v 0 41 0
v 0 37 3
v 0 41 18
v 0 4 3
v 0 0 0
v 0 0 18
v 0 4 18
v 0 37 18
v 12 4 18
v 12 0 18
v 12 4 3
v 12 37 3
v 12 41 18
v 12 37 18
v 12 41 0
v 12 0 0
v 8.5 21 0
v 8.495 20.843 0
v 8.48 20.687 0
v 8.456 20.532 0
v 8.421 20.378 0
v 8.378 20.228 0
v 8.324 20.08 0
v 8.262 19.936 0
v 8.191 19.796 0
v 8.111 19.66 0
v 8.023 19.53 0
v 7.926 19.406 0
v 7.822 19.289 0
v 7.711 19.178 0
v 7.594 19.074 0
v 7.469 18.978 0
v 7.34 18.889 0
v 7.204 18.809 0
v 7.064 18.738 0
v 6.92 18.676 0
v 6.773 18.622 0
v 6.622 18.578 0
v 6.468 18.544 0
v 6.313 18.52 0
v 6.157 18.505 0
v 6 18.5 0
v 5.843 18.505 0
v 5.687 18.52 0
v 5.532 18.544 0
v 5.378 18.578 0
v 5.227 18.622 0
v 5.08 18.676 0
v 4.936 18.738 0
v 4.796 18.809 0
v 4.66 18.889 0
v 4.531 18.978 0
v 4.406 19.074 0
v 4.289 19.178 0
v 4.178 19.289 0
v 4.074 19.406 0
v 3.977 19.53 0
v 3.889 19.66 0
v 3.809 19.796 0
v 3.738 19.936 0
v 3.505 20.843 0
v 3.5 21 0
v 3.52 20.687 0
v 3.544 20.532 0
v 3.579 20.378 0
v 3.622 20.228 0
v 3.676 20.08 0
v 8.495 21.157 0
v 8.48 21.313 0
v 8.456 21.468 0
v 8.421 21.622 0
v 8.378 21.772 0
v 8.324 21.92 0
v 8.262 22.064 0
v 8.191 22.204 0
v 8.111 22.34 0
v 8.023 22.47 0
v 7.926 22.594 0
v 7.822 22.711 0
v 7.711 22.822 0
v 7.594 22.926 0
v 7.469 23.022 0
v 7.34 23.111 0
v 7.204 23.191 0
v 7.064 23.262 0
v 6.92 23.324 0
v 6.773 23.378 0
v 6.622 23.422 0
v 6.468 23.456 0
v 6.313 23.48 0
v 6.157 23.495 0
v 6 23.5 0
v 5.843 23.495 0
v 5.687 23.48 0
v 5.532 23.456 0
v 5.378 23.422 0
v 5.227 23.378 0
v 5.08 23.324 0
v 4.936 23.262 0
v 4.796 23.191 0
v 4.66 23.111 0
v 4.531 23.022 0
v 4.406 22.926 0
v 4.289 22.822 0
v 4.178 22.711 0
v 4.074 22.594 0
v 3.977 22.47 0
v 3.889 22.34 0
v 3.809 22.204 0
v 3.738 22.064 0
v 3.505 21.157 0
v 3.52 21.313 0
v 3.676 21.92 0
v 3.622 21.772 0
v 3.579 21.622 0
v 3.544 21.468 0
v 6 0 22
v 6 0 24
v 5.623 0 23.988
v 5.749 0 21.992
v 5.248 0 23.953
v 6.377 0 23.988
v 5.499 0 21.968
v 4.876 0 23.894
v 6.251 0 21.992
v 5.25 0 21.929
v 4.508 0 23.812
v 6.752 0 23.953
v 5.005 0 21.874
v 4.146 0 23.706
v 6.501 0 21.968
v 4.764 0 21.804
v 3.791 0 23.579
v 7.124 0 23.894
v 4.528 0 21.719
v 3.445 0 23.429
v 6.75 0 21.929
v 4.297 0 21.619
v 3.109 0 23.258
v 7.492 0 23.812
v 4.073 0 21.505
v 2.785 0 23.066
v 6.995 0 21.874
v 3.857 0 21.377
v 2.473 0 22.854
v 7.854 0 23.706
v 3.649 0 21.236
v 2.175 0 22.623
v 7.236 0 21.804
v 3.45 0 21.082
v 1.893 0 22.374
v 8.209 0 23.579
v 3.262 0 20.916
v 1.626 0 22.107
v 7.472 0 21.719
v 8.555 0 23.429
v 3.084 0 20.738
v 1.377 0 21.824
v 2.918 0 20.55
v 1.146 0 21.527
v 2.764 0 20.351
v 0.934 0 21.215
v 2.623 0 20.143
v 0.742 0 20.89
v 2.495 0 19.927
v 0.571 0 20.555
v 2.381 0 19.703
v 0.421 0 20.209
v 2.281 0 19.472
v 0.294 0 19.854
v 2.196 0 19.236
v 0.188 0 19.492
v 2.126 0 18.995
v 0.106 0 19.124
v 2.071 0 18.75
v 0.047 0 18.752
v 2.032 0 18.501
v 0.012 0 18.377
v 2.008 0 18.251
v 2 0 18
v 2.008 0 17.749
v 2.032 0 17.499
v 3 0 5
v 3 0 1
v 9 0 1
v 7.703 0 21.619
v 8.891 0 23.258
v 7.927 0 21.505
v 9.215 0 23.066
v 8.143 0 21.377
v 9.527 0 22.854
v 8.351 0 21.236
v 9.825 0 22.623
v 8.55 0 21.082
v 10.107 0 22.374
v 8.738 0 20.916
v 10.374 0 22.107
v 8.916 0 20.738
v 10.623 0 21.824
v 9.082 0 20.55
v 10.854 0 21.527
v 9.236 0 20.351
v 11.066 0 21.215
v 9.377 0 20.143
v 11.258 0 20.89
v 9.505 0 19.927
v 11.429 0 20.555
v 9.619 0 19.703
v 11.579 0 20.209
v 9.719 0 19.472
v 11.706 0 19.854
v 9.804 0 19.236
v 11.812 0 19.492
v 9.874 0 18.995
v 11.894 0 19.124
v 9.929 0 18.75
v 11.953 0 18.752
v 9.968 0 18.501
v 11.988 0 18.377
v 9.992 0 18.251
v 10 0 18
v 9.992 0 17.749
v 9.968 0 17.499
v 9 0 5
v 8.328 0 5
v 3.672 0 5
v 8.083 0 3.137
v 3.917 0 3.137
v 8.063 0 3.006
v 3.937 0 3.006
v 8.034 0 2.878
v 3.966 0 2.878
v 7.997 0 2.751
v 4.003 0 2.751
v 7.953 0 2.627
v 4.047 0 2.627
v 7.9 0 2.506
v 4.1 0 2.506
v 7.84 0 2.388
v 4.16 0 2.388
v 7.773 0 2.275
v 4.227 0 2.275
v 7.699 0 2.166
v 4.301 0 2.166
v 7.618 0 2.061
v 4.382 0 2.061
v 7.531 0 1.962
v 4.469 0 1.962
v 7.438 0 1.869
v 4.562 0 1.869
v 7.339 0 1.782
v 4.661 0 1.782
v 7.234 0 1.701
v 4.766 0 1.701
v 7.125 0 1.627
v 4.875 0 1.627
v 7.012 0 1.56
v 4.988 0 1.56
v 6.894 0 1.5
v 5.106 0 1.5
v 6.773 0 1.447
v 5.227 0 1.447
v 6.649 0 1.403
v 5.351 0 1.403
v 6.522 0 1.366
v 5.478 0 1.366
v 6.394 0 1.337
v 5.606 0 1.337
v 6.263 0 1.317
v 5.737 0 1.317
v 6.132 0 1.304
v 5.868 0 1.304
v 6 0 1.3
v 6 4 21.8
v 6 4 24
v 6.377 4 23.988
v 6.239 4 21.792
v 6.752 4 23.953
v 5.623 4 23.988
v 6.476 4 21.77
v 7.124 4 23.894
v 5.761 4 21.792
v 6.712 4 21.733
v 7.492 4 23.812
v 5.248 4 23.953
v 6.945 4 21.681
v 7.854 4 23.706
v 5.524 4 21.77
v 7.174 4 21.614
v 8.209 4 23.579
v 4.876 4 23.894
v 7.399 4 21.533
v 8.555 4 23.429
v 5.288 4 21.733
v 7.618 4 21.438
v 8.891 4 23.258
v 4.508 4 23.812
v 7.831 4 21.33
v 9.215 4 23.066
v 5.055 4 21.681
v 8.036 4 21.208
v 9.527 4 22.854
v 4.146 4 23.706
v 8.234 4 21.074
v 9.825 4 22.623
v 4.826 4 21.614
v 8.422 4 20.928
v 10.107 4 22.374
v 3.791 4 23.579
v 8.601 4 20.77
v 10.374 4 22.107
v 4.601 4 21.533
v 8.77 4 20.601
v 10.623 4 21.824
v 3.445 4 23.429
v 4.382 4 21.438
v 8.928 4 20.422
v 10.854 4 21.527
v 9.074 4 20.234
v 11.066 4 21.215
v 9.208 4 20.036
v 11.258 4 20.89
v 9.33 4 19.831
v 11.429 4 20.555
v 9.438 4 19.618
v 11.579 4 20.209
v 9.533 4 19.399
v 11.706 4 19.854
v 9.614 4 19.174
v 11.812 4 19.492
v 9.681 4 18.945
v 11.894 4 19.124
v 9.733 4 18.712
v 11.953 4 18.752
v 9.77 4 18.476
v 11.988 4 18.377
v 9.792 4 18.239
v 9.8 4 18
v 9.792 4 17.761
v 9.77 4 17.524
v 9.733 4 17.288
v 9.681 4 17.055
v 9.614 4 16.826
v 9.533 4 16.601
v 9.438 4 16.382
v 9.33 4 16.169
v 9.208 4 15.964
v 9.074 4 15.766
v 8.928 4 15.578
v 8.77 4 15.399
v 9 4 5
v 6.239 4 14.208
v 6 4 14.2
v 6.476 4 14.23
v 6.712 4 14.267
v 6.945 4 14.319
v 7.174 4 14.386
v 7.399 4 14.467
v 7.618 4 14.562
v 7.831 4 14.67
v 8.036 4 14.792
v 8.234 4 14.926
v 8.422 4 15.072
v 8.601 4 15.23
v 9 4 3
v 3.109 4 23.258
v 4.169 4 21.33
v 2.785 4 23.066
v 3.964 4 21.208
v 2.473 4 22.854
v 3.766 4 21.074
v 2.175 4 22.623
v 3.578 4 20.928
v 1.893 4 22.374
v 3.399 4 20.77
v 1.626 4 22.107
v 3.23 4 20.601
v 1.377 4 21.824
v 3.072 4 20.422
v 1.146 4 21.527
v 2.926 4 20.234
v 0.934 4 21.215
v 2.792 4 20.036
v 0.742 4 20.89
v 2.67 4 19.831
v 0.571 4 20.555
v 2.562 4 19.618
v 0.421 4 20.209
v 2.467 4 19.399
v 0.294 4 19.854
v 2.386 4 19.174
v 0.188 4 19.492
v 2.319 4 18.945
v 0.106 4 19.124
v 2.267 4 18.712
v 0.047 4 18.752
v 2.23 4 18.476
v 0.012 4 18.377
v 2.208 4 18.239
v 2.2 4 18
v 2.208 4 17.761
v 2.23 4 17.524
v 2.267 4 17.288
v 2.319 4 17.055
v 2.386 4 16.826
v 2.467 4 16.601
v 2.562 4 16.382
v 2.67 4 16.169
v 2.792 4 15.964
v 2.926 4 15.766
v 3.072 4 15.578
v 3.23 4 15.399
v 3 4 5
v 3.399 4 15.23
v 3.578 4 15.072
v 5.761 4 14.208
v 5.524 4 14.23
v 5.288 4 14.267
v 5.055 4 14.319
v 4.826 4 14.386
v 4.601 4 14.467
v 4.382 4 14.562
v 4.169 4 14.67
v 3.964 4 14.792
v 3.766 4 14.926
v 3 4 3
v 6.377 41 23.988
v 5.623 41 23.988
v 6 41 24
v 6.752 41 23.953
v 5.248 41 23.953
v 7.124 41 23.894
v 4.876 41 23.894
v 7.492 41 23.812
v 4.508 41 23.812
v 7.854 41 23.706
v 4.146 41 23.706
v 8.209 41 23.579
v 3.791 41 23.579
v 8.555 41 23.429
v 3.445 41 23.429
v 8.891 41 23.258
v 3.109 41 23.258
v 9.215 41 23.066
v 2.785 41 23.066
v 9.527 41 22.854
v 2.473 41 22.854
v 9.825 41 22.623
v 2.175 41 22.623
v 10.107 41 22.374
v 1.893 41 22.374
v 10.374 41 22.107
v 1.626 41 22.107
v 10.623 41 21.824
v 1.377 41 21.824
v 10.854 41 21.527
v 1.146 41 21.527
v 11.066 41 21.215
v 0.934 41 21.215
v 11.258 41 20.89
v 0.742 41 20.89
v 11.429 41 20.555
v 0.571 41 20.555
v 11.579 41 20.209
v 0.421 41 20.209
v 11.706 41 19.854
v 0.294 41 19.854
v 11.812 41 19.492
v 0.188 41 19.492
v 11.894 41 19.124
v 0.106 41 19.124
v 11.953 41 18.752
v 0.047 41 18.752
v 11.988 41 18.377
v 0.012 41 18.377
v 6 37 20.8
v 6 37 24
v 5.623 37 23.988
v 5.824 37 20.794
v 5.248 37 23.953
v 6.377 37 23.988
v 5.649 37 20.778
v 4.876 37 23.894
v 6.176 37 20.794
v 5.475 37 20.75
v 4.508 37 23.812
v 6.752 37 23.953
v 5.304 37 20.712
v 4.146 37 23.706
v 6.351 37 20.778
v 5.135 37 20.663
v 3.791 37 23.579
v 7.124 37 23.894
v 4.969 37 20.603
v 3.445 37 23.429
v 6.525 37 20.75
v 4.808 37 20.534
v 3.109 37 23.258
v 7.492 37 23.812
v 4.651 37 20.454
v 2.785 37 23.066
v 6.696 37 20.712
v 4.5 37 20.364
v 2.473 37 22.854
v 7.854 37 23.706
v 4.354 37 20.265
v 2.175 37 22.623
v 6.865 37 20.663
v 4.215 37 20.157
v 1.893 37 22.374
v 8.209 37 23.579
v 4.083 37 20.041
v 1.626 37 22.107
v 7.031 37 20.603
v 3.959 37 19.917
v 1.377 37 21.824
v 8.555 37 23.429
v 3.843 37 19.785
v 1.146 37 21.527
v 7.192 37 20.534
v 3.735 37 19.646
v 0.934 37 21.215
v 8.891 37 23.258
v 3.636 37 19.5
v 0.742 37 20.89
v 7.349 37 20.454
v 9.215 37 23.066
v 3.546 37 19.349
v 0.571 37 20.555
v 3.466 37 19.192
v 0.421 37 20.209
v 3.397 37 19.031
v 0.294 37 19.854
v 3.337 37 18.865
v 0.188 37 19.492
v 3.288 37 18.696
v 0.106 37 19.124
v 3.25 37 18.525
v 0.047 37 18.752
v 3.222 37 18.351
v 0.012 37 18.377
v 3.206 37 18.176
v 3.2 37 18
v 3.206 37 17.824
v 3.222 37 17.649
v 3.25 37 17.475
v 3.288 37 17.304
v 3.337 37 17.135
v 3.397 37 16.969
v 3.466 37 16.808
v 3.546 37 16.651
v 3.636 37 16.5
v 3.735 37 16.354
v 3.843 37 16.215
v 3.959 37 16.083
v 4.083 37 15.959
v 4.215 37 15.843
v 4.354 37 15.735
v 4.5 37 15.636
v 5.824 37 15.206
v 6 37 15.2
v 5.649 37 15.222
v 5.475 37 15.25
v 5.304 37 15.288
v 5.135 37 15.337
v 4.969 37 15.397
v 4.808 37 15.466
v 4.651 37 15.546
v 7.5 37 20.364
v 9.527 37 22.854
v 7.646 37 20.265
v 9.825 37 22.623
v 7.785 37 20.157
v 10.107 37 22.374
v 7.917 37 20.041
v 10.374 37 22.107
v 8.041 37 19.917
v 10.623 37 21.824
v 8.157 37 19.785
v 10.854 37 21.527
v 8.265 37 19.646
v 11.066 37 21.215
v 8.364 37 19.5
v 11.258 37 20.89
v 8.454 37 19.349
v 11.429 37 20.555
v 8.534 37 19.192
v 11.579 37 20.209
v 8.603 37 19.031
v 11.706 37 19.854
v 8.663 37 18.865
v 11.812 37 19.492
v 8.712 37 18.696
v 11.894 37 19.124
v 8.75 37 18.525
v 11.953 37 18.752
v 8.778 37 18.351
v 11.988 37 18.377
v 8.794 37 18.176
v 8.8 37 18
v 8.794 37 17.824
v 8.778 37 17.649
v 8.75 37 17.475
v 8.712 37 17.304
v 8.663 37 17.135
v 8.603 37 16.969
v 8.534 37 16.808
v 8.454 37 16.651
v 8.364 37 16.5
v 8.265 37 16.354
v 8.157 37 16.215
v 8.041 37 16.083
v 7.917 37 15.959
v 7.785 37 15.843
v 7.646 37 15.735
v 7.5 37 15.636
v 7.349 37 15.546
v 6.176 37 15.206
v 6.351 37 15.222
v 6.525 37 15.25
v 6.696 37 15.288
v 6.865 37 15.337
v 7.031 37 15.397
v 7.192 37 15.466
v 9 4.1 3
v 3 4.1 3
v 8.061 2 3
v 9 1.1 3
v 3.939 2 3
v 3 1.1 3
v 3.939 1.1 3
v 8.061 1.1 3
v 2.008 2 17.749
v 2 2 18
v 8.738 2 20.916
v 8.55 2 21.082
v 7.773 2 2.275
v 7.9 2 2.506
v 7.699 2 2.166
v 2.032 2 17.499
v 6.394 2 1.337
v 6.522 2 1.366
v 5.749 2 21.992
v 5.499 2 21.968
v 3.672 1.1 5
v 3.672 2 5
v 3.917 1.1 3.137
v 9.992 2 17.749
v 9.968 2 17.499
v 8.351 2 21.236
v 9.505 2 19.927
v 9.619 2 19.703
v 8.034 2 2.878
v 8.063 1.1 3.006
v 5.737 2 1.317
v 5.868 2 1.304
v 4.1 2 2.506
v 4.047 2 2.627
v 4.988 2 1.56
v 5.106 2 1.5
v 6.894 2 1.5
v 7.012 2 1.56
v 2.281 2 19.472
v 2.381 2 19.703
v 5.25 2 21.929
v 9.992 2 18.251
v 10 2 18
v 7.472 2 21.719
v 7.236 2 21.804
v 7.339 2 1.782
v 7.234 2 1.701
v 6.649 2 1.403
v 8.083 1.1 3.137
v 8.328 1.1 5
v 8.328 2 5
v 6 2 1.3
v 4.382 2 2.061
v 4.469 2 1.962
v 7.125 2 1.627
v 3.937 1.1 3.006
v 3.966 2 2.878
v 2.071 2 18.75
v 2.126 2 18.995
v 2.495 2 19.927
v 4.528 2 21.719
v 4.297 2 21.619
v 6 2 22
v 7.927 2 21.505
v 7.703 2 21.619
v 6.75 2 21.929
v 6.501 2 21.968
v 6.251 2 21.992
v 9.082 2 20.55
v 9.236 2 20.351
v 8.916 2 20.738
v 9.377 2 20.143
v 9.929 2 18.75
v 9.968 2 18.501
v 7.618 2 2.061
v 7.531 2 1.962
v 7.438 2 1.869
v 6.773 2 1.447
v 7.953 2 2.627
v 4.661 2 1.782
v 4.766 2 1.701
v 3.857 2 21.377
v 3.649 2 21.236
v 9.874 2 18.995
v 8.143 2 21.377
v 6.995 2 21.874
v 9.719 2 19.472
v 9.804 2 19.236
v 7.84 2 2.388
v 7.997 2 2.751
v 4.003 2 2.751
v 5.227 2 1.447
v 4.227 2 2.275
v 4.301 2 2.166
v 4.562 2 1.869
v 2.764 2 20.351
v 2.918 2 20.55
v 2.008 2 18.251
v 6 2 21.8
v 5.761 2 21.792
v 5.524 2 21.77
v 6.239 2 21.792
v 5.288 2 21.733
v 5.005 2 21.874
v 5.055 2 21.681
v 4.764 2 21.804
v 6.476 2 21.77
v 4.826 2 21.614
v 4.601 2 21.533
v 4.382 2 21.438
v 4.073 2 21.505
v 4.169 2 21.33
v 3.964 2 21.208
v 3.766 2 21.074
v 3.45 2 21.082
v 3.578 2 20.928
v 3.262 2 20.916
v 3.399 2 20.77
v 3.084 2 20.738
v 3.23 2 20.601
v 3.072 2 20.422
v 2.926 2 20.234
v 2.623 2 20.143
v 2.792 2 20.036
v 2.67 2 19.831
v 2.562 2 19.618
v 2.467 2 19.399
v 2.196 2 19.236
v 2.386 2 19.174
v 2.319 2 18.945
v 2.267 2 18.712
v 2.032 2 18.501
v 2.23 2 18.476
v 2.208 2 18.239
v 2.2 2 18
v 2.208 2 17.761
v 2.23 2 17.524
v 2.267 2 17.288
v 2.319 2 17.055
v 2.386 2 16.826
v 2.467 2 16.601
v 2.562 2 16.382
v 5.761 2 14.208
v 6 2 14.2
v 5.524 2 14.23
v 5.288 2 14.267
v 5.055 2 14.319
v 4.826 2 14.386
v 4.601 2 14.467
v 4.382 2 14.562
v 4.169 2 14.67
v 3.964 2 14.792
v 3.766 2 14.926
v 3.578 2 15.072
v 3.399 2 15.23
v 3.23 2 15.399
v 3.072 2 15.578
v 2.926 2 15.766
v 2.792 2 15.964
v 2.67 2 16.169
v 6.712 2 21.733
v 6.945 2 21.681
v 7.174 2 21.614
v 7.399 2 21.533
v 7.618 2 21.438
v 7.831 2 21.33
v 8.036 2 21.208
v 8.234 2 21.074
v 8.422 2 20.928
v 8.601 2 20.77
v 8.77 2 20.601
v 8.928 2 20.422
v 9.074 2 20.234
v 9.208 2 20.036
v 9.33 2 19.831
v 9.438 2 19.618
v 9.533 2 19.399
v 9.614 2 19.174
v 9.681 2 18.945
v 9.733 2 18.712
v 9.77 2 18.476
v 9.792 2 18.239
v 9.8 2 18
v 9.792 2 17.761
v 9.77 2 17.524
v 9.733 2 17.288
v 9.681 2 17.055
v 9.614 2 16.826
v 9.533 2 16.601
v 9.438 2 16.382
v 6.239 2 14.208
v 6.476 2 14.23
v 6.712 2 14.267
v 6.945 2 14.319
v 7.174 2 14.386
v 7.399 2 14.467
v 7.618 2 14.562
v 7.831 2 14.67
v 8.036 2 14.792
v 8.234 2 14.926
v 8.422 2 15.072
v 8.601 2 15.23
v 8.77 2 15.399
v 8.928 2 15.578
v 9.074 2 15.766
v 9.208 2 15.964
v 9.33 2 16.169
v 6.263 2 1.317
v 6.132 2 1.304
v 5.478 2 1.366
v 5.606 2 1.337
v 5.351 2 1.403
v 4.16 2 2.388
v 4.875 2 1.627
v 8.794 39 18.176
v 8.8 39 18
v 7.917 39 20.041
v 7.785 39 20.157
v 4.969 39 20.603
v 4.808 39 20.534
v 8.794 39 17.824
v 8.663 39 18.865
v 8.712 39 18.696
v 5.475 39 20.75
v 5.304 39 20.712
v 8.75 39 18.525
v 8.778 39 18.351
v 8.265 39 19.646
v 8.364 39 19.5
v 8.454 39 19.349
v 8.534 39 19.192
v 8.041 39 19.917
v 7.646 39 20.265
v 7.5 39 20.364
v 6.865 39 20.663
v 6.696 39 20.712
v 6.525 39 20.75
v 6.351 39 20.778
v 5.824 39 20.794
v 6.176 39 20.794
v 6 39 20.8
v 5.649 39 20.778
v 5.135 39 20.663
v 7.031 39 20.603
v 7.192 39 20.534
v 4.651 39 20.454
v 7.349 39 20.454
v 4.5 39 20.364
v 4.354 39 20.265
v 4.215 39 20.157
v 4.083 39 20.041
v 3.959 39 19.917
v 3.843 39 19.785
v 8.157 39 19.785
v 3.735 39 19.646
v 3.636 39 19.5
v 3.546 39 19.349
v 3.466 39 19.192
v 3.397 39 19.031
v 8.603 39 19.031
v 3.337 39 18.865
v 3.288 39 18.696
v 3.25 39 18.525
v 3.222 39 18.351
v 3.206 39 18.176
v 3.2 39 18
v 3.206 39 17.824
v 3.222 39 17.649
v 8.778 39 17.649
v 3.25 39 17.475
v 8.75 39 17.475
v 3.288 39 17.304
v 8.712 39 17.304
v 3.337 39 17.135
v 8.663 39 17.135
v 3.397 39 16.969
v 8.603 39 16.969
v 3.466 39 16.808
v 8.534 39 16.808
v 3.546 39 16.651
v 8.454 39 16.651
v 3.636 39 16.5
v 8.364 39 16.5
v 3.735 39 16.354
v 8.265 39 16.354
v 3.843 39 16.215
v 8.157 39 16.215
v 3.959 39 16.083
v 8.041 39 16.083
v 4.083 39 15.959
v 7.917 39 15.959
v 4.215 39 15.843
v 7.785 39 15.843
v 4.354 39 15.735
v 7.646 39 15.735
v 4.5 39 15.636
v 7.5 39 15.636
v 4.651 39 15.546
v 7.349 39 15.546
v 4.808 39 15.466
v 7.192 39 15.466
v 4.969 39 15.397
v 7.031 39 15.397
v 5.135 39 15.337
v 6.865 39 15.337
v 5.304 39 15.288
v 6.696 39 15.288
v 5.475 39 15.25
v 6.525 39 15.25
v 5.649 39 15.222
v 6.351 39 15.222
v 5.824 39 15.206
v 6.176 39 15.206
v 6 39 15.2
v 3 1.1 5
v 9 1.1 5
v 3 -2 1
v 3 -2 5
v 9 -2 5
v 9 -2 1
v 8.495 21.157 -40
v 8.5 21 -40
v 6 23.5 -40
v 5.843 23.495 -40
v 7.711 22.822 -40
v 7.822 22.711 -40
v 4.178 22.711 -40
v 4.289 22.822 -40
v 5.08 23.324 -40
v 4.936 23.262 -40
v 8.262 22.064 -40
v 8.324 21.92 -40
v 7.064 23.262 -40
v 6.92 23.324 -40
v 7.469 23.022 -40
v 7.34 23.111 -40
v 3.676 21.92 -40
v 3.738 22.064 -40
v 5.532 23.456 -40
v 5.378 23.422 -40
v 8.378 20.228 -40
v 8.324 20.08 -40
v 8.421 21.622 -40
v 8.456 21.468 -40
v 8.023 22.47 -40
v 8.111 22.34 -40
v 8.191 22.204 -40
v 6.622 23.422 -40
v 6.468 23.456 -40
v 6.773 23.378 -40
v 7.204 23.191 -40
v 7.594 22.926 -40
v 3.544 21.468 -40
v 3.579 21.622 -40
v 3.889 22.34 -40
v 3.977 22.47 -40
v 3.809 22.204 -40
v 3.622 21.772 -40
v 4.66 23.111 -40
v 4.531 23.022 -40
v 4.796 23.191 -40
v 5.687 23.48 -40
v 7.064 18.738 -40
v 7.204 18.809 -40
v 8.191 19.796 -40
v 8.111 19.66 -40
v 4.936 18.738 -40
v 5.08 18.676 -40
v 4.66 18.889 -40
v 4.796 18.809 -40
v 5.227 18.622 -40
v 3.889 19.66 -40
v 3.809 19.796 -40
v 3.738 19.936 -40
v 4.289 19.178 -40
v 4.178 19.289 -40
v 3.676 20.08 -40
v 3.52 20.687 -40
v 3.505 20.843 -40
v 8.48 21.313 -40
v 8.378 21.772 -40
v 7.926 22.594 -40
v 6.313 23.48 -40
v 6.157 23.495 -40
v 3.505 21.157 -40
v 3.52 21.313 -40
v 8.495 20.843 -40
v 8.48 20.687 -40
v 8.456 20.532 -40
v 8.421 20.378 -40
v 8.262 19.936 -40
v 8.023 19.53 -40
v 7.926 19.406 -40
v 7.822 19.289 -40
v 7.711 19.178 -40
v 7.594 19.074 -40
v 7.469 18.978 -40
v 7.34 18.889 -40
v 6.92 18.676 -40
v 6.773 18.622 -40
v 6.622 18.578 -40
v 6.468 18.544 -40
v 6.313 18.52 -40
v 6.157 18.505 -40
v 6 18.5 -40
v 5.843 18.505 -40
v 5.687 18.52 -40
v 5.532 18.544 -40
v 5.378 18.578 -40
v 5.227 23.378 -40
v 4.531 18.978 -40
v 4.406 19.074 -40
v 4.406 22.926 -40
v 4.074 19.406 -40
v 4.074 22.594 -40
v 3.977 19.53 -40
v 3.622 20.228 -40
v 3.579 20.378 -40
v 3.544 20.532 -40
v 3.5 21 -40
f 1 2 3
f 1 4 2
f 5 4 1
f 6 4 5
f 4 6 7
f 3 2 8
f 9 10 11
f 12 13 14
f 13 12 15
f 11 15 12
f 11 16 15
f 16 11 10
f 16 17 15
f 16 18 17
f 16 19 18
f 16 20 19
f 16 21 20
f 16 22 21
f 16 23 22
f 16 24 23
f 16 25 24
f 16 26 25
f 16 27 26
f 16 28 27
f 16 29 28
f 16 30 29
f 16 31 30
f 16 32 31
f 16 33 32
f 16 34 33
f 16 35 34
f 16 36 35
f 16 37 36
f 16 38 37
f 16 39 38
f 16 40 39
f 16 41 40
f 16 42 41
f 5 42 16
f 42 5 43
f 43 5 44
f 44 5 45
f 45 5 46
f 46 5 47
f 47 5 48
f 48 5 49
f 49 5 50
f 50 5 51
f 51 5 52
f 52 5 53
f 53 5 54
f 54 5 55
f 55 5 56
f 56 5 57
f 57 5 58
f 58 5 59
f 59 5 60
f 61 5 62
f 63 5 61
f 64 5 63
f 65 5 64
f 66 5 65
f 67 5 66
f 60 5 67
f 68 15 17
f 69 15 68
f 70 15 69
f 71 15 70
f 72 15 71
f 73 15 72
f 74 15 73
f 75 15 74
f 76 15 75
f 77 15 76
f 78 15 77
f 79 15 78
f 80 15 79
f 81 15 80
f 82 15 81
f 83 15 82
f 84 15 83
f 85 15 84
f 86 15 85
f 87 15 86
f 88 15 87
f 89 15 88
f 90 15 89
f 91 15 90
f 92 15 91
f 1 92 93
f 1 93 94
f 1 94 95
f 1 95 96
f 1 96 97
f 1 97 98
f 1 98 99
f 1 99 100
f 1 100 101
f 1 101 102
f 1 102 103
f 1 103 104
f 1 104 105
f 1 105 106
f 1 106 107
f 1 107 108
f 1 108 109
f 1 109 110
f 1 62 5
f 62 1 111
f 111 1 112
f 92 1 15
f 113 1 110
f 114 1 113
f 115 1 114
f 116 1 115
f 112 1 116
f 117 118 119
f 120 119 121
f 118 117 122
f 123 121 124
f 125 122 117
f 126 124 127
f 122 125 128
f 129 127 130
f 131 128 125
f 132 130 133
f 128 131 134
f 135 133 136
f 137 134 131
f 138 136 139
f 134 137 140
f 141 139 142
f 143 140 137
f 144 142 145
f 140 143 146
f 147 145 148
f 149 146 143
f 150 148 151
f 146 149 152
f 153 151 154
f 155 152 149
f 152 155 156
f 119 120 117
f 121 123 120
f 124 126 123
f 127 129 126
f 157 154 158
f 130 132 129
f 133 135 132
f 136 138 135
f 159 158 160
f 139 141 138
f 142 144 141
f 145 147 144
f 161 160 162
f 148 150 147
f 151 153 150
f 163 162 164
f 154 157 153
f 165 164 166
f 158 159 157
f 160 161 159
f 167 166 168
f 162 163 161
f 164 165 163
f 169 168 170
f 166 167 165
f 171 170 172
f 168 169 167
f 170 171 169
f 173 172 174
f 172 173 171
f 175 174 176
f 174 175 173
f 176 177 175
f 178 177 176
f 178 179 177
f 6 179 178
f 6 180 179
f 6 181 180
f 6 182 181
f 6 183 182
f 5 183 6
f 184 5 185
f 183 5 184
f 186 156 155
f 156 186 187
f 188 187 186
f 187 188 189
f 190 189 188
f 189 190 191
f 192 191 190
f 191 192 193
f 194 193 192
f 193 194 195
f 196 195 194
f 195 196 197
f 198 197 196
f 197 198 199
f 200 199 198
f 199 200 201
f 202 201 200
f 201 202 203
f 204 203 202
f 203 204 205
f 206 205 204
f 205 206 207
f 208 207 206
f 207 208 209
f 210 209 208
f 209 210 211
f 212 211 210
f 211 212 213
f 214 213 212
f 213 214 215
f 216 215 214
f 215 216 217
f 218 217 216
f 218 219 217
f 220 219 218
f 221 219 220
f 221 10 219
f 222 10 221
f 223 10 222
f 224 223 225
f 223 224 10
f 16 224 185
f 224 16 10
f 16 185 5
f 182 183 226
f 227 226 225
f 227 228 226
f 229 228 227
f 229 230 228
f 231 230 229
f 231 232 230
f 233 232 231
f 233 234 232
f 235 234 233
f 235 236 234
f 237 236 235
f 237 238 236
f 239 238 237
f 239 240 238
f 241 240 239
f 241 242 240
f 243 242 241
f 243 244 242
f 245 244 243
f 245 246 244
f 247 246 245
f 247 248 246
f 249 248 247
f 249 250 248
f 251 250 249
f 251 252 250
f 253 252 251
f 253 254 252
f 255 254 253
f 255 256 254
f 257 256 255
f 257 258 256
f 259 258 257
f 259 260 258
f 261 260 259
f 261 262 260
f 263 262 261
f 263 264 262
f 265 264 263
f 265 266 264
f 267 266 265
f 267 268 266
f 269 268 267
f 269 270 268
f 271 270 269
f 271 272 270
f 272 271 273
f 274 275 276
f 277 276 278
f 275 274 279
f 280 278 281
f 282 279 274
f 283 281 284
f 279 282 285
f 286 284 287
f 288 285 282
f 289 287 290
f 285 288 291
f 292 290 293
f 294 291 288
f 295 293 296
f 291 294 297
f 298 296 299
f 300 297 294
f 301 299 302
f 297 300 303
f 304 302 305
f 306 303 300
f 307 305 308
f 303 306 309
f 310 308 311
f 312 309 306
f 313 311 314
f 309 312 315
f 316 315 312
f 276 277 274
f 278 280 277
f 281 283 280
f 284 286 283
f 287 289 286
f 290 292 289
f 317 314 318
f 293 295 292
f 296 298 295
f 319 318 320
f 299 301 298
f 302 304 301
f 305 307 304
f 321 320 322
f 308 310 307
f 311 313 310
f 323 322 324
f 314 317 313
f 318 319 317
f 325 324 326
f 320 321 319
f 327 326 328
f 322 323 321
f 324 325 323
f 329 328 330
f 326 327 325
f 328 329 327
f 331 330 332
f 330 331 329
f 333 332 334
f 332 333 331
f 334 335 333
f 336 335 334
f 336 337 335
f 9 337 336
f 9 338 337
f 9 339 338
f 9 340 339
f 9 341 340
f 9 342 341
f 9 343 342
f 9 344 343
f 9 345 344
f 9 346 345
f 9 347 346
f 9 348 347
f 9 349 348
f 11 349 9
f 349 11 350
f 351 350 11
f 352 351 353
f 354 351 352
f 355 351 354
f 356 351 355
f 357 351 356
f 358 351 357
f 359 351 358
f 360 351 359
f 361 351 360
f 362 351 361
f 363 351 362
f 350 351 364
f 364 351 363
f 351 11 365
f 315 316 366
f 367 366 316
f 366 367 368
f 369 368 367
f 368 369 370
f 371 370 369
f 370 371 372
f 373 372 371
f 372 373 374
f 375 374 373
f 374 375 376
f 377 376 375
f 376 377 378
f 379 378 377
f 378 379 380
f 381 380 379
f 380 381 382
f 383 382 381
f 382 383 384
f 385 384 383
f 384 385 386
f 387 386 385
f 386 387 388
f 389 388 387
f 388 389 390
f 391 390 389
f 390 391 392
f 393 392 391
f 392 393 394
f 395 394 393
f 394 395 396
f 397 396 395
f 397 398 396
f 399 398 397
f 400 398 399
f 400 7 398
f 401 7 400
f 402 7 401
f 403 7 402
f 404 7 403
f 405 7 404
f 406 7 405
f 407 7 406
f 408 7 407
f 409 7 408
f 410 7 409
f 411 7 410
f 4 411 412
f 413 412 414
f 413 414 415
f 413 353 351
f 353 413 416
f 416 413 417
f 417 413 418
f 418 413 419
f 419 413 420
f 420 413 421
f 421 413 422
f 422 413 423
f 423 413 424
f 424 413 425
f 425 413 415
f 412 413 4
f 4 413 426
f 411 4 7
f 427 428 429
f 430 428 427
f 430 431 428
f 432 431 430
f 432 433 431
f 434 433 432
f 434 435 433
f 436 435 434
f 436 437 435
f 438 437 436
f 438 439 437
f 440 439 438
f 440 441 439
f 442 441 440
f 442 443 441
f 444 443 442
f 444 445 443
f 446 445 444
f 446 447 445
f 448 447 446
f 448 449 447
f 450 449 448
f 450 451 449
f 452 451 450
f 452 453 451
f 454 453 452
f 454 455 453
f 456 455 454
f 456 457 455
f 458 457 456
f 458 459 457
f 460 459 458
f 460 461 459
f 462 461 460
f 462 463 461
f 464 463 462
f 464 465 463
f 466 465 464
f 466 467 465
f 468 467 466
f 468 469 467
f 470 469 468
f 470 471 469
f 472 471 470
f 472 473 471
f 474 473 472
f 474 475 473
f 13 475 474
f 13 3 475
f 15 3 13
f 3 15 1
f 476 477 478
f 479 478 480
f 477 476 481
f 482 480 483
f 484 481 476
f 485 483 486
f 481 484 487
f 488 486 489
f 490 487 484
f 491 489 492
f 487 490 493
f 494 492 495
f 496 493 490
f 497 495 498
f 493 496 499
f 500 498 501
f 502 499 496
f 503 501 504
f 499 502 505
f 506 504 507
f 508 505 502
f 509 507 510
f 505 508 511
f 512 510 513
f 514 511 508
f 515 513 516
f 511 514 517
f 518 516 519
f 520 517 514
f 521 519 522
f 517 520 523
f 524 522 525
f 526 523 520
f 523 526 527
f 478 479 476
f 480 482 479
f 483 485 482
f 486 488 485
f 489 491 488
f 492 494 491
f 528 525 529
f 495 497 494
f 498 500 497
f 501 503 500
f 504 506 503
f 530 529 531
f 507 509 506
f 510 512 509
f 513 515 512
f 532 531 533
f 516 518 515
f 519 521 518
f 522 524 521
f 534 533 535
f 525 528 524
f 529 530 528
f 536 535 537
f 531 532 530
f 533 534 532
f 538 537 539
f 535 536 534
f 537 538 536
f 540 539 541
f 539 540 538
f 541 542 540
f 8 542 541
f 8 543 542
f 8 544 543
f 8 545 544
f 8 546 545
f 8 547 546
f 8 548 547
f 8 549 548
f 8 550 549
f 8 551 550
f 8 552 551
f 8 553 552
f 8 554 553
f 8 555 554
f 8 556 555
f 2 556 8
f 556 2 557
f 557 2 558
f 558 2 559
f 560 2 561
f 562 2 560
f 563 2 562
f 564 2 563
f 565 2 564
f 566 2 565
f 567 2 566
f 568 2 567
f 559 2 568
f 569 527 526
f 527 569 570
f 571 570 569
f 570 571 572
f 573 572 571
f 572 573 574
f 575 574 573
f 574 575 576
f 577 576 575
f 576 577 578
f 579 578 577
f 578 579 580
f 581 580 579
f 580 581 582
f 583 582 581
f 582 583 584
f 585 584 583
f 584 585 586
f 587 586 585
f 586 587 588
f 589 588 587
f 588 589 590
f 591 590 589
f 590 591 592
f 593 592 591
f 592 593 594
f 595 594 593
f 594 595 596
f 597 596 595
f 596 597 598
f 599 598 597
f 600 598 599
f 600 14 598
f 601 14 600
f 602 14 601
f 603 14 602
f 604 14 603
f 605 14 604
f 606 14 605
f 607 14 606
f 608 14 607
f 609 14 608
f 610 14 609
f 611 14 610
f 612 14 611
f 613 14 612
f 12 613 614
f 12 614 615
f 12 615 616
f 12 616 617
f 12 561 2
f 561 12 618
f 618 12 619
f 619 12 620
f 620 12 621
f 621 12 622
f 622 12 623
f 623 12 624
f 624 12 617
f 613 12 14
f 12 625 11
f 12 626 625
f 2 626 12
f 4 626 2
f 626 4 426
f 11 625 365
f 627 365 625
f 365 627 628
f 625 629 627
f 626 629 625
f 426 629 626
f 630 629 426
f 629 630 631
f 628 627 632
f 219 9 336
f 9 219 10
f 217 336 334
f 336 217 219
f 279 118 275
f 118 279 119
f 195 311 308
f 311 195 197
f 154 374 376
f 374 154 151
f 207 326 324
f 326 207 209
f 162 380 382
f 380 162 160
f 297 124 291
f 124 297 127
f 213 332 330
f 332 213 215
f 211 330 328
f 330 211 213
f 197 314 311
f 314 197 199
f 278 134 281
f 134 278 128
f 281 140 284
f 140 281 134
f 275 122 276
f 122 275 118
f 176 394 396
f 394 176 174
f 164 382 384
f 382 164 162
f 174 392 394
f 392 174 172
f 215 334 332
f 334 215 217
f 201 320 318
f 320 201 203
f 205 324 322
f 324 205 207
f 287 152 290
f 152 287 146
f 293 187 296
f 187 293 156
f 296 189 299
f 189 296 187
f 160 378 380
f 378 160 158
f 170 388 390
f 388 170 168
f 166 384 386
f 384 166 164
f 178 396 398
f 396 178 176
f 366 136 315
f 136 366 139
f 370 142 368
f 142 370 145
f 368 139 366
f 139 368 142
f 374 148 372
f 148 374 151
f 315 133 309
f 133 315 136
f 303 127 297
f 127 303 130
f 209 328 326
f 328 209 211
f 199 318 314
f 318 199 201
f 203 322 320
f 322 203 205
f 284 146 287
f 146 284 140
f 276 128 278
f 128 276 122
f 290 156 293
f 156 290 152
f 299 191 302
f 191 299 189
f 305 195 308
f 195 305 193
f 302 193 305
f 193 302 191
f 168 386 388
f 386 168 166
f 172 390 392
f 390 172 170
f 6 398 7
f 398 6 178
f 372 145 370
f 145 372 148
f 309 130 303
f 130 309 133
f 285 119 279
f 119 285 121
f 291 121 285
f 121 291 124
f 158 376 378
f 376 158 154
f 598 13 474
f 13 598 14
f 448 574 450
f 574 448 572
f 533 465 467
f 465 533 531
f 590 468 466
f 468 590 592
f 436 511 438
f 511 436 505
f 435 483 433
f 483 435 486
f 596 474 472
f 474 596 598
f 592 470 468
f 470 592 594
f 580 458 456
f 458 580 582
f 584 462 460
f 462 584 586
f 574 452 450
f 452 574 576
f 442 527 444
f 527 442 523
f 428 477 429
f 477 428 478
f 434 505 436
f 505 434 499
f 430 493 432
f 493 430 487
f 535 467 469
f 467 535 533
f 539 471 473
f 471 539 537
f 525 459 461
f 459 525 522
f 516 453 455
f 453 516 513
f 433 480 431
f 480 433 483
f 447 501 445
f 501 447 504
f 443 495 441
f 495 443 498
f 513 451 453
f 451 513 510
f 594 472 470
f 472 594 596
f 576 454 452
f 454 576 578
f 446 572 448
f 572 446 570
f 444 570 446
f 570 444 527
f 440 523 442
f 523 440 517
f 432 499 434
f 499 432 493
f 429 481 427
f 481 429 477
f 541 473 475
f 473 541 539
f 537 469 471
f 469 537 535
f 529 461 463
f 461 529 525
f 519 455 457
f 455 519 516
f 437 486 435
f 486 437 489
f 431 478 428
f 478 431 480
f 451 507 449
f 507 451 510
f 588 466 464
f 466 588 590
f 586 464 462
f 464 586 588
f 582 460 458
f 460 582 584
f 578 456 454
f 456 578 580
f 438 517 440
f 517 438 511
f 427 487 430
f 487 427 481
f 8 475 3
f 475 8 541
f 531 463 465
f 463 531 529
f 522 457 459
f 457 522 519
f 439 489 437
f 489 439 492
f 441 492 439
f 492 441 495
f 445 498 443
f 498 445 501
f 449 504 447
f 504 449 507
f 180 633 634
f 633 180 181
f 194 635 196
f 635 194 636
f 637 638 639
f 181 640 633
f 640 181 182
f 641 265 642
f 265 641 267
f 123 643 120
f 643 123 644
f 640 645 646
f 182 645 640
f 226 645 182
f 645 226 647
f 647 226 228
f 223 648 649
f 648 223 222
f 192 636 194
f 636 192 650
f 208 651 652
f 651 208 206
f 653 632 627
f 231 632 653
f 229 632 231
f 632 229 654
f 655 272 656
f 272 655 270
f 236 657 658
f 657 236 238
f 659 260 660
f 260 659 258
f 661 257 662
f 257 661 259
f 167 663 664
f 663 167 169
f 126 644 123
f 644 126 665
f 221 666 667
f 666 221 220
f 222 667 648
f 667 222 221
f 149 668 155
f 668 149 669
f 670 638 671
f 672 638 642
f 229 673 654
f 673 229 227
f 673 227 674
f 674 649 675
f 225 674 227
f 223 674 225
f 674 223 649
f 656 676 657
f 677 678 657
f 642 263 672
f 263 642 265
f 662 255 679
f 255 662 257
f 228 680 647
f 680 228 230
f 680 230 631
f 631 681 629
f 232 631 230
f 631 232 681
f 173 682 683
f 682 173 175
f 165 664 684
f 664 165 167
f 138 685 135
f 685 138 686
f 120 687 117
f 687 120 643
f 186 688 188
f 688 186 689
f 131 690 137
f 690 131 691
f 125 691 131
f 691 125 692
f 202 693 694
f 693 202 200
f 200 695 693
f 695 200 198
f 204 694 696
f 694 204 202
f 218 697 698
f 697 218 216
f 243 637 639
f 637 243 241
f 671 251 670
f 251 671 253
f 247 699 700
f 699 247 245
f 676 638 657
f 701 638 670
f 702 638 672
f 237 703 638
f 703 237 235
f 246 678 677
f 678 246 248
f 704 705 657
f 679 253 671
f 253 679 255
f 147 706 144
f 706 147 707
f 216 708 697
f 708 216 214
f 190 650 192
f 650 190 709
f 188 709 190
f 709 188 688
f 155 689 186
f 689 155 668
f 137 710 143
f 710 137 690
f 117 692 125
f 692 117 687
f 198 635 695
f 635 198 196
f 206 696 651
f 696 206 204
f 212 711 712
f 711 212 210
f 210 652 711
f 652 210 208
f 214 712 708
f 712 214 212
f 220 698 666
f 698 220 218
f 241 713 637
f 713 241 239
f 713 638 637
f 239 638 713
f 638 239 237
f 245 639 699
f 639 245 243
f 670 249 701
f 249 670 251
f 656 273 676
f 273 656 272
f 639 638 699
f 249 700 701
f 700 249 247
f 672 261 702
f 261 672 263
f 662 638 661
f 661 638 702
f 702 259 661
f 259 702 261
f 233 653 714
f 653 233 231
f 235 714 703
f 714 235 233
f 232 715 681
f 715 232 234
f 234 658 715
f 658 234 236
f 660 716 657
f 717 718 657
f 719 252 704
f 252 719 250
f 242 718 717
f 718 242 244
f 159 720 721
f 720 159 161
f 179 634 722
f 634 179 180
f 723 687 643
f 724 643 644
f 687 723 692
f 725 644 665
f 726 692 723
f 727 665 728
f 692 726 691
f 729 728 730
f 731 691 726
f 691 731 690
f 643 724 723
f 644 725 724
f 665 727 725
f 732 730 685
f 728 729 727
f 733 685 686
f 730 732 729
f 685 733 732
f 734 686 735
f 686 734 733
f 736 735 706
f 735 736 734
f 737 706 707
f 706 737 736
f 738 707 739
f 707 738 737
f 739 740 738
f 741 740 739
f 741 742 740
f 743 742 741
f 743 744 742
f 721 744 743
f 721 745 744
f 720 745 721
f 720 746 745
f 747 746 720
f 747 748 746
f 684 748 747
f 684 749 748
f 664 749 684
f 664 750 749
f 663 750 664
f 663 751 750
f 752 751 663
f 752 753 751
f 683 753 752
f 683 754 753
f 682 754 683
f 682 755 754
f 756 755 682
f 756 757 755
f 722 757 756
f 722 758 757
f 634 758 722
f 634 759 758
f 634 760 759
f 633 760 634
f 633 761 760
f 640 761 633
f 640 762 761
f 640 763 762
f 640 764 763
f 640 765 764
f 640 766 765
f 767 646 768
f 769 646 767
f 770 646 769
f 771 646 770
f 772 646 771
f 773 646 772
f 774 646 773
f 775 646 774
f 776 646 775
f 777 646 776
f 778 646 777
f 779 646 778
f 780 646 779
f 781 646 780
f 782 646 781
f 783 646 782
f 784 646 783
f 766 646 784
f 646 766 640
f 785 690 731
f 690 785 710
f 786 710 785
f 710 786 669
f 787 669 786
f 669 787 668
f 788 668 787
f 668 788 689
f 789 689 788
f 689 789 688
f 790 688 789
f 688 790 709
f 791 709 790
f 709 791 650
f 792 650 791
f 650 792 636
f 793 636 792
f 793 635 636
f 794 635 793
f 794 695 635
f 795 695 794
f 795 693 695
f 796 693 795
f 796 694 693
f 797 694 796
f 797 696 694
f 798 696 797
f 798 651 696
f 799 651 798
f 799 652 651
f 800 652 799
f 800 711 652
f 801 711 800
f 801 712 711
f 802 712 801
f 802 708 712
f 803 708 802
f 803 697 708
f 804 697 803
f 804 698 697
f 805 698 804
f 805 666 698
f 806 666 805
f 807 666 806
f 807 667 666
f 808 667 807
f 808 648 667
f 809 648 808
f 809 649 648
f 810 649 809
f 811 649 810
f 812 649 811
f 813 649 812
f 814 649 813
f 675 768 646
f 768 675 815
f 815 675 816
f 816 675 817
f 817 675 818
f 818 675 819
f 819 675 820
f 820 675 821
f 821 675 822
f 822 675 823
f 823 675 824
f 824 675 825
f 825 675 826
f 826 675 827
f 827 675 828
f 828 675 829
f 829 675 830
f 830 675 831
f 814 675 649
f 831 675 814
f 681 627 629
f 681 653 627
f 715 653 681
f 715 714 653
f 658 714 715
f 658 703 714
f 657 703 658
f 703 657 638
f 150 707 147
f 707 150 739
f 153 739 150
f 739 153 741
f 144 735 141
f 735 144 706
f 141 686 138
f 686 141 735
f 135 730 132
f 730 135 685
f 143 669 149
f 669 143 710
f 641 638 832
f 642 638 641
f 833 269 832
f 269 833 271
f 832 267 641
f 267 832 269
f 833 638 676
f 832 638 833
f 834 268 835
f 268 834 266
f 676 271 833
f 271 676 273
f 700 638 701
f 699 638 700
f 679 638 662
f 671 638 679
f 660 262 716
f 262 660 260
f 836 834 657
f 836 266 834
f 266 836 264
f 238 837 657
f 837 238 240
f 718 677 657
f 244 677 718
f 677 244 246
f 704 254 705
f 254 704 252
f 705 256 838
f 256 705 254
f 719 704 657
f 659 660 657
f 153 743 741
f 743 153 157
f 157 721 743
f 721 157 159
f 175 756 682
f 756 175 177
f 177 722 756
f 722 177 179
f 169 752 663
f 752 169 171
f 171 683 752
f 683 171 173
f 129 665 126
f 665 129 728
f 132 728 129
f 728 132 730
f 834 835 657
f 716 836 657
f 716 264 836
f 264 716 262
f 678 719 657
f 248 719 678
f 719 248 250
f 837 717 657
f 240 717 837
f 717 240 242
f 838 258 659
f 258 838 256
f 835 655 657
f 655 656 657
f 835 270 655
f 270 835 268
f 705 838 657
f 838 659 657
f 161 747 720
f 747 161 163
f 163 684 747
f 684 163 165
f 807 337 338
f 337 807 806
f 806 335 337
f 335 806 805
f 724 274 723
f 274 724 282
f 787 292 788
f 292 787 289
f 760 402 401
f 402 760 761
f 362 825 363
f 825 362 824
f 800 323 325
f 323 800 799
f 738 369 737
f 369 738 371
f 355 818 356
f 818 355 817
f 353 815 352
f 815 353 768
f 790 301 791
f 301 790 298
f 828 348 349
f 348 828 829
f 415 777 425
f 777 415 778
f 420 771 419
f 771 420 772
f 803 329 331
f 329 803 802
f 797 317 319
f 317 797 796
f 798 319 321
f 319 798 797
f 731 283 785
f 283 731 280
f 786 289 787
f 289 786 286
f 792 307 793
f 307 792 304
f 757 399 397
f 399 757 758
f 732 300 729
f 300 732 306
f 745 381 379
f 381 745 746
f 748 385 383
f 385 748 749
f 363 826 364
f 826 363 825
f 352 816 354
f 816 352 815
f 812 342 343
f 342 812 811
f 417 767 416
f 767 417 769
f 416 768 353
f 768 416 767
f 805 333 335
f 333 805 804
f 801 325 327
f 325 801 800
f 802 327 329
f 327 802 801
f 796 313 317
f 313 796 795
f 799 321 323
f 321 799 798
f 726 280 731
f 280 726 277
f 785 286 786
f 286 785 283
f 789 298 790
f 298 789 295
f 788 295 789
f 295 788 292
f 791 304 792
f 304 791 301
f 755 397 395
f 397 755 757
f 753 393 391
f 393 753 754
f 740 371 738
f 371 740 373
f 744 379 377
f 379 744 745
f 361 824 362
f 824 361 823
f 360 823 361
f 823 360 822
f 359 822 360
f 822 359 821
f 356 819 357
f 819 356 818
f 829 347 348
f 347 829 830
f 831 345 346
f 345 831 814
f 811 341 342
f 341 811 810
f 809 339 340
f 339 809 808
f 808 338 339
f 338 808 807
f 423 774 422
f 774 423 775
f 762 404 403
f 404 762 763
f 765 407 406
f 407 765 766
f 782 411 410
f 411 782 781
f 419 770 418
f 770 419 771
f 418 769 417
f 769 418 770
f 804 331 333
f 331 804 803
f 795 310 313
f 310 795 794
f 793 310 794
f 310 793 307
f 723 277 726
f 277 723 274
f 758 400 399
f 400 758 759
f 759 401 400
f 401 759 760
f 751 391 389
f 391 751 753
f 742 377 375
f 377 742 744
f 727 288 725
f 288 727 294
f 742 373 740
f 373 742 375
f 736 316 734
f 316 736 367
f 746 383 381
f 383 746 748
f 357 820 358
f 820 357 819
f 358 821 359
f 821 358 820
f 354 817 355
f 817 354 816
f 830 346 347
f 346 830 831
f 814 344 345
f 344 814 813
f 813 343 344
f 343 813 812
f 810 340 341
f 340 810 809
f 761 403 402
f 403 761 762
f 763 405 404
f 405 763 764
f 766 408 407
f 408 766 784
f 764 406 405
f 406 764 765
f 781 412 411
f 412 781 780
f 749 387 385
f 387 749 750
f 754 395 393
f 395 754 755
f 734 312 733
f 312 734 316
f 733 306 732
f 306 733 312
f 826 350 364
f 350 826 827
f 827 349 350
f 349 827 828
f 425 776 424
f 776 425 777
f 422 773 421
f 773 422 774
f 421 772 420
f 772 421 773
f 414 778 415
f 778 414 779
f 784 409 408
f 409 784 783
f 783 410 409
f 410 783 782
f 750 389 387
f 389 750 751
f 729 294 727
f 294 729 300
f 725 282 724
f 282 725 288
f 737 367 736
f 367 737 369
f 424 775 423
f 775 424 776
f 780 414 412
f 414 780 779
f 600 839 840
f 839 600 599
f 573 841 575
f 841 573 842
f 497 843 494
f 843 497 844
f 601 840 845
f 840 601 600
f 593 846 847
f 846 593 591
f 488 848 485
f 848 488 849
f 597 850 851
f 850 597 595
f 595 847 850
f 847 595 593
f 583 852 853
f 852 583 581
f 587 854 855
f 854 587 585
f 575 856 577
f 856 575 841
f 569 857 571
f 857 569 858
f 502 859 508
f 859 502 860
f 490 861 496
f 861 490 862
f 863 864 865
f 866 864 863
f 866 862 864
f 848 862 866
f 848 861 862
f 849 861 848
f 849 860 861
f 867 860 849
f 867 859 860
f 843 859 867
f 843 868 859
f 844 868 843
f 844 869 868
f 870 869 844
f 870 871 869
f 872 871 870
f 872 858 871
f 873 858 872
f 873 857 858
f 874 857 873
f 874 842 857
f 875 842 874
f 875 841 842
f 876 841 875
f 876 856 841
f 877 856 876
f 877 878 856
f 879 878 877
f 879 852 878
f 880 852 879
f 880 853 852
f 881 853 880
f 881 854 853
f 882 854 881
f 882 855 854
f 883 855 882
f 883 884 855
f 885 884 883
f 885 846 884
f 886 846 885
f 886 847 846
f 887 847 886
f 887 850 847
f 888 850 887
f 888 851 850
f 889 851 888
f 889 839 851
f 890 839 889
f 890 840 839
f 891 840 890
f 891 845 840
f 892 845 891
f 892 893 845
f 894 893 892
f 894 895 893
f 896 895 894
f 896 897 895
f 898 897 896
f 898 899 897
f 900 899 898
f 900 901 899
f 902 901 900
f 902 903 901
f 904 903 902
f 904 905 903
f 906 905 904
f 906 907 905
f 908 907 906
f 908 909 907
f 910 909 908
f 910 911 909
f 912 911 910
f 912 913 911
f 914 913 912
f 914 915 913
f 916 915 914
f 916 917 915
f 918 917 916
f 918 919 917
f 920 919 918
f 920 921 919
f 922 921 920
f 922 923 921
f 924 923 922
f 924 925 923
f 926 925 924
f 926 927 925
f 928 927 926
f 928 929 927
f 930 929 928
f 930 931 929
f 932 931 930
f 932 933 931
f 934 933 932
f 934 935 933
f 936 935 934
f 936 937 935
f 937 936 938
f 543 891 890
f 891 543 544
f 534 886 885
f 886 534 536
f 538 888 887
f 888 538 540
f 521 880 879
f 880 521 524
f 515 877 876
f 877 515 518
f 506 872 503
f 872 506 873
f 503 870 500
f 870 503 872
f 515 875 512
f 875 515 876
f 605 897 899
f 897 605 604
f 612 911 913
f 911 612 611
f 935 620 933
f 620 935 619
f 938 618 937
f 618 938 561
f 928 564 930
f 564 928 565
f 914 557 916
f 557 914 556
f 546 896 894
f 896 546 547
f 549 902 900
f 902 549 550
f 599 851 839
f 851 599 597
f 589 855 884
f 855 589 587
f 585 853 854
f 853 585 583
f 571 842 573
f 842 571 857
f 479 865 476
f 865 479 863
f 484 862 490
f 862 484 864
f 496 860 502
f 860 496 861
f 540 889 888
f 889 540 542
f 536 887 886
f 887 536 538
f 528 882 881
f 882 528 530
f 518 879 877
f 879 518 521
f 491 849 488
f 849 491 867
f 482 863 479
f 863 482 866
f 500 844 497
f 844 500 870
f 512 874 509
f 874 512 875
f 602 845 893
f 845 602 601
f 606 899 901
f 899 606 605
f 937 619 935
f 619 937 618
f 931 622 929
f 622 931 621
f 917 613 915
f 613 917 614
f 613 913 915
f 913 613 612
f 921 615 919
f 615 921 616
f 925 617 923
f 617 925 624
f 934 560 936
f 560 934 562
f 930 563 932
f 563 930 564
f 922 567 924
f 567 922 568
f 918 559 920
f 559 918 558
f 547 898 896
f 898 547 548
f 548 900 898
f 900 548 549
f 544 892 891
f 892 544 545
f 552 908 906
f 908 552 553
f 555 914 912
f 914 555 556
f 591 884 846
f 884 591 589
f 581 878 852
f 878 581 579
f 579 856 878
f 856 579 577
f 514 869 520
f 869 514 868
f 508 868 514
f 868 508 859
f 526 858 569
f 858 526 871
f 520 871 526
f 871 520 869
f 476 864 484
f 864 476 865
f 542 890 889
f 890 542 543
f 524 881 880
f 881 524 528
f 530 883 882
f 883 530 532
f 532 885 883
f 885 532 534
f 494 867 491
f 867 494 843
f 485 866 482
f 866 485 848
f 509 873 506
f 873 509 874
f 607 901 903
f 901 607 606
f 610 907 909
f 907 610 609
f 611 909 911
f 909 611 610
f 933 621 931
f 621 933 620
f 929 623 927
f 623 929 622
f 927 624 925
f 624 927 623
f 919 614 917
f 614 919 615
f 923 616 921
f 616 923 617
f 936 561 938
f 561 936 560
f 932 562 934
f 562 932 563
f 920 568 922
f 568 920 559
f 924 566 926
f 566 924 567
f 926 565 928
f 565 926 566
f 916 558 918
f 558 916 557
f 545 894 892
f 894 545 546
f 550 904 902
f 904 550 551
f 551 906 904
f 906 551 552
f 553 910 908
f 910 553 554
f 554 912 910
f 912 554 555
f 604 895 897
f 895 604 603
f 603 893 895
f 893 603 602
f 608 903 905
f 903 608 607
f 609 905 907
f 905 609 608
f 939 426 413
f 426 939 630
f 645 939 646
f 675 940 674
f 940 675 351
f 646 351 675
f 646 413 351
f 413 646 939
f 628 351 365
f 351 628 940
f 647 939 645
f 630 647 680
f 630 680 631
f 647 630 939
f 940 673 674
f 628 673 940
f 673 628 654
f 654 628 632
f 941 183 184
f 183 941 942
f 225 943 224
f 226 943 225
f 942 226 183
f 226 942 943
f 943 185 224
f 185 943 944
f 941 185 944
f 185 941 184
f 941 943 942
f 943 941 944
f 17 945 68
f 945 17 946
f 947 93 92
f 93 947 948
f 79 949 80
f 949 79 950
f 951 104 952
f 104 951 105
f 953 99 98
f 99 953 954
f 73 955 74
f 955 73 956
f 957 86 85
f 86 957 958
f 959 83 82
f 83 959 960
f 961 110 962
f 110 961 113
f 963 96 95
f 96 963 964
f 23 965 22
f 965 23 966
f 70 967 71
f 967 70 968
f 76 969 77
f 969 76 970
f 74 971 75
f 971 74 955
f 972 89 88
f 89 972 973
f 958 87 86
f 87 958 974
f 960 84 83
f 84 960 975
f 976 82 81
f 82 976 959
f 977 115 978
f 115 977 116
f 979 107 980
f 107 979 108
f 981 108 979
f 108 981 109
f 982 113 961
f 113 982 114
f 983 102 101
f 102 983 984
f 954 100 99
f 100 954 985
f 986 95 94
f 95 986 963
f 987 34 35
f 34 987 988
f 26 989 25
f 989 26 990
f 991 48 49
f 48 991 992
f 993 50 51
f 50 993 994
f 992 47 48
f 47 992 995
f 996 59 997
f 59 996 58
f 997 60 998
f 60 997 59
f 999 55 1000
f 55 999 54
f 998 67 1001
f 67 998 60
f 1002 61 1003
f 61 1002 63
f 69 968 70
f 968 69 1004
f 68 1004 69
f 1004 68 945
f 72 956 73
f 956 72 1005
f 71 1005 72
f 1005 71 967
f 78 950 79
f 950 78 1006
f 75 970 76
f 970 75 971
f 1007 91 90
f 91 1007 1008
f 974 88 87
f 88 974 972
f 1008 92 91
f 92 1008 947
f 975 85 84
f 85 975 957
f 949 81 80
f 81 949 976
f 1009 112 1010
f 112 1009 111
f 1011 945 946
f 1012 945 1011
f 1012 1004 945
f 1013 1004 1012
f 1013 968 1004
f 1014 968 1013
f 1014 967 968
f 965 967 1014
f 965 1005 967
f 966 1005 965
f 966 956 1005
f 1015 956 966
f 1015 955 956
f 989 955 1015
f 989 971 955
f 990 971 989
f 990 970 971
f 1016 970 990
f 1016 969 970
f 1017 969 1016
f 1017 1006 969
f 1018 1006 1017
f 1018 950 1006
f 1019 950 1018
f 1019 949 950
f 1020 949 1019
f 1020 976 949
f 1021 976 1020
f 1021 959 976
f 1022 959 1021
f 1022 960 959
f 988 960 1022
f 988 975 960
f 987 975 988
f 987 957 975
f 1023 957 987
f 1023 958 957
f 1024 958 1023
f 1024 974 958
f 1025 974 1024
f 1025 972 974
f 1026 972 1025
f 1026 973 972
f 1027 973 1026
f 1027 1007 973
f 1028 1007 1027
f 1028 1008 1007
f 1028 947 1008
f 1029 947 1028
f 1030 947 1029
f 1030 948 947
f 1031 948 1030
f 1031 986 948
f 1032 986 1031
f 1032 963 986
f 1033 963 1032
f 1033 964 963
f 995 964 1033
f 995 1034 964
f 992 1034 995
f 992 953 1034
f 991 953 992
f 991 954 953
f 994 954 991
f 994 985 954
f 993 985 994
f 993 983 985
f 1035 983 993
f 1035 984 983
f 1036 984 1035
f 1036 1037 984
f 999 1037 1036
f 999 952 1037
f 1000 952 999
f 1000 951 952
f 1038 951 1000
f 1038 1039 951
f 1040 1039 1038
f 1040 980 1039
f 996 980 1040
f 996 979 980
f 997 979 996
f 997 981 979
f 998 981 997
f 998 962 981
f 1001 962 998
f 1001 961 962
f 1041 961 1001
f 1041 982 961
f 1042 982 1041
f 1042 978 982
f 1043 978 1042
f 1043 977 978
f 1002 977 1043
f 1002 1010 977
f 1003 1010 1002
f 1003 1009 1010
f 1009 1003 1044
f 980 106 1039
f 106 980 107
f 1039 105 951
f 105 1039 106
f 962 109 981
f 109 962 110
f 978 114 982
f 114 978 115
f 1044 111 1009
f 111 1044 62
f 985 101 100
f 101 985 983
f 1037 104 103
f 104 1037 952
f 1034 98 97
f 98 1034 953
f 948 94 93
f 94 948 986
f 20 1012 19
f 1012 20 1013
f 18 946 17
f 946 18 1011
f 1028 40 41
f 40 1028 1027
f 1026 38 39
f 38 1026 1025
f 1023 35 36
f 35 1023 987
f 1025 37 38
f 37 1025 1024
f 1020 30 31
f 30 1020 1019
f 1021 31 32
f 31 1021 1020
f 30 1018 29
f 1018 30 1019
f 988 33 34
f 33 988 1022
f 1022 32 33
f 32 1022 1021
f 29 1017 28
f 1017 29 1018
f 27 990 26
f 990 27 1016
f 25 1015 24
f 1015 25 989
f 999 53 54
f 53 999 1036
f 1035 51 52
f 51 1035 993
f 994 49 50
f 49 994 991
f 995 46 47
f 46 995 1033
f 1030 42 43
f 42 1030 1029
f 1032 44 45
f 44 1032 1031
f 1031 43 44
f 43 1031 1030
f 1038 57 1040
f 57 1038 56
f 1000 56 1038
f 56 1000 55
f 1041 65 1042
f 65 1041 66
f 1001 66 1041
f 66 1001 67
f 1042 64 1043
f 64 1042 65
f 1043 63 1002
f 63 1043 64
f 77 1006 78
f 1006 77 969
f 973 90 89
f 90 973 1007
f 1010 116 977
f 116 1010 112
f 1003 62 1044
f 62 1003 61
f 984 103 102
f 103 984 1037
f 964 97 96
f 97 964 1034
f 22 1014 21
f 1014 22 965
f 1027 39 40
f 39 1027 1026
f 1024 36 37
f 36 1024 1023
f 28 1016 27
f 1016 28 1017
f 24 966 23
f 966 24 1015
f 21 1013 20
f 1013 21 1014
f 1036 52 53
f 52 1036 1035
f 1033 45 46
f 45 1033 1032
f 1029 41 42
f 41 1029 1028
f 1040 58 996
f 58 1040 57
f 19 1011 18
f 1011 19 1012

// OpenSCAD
$fn = 100;

difference() {
    union() {
        cube([12,4,18]);
        translate([0,37,0]) cube([12,4,18]);
        cube([12,41,3]);  
        color("pink") translate([6,4,18]) rotate([90,0,0]) cylinder(4,6,6);  
        color("pink") translate([6,41,18]) rotate([90,0,0]) cylinder(4,6,6);  

    }
    
    union() {
        translate([6,2,3]) rotate([90,0,0]) color("green") hull()
        {
            translate([0,0.4,0]) cylinder(6,2.1,2.1);
            translate([0,15,0]) cylinder(6,4,4);
        }    
        translate([6,5,18]) rotate([90,0,0]) cylinder(6,3.8,3.8);
        
        translate([6,39,18]) rotate([90,0,0]) cylinder(6,2.8,2.8);
//        translate([6,4.5,3]) rotate([90,0,0]) cylinder(3,3,3); 
        translate([3,1.1,3]) cube([6,3,2]);       

    }
}

//stopper
translate([3,-2,1]) cube([6,2,4]);

//leg
color("red")translate([6,21,-40]) cylinder(40,2.5,2.5);

//translate([6,21,-51]) color("blue") sphere(5);
